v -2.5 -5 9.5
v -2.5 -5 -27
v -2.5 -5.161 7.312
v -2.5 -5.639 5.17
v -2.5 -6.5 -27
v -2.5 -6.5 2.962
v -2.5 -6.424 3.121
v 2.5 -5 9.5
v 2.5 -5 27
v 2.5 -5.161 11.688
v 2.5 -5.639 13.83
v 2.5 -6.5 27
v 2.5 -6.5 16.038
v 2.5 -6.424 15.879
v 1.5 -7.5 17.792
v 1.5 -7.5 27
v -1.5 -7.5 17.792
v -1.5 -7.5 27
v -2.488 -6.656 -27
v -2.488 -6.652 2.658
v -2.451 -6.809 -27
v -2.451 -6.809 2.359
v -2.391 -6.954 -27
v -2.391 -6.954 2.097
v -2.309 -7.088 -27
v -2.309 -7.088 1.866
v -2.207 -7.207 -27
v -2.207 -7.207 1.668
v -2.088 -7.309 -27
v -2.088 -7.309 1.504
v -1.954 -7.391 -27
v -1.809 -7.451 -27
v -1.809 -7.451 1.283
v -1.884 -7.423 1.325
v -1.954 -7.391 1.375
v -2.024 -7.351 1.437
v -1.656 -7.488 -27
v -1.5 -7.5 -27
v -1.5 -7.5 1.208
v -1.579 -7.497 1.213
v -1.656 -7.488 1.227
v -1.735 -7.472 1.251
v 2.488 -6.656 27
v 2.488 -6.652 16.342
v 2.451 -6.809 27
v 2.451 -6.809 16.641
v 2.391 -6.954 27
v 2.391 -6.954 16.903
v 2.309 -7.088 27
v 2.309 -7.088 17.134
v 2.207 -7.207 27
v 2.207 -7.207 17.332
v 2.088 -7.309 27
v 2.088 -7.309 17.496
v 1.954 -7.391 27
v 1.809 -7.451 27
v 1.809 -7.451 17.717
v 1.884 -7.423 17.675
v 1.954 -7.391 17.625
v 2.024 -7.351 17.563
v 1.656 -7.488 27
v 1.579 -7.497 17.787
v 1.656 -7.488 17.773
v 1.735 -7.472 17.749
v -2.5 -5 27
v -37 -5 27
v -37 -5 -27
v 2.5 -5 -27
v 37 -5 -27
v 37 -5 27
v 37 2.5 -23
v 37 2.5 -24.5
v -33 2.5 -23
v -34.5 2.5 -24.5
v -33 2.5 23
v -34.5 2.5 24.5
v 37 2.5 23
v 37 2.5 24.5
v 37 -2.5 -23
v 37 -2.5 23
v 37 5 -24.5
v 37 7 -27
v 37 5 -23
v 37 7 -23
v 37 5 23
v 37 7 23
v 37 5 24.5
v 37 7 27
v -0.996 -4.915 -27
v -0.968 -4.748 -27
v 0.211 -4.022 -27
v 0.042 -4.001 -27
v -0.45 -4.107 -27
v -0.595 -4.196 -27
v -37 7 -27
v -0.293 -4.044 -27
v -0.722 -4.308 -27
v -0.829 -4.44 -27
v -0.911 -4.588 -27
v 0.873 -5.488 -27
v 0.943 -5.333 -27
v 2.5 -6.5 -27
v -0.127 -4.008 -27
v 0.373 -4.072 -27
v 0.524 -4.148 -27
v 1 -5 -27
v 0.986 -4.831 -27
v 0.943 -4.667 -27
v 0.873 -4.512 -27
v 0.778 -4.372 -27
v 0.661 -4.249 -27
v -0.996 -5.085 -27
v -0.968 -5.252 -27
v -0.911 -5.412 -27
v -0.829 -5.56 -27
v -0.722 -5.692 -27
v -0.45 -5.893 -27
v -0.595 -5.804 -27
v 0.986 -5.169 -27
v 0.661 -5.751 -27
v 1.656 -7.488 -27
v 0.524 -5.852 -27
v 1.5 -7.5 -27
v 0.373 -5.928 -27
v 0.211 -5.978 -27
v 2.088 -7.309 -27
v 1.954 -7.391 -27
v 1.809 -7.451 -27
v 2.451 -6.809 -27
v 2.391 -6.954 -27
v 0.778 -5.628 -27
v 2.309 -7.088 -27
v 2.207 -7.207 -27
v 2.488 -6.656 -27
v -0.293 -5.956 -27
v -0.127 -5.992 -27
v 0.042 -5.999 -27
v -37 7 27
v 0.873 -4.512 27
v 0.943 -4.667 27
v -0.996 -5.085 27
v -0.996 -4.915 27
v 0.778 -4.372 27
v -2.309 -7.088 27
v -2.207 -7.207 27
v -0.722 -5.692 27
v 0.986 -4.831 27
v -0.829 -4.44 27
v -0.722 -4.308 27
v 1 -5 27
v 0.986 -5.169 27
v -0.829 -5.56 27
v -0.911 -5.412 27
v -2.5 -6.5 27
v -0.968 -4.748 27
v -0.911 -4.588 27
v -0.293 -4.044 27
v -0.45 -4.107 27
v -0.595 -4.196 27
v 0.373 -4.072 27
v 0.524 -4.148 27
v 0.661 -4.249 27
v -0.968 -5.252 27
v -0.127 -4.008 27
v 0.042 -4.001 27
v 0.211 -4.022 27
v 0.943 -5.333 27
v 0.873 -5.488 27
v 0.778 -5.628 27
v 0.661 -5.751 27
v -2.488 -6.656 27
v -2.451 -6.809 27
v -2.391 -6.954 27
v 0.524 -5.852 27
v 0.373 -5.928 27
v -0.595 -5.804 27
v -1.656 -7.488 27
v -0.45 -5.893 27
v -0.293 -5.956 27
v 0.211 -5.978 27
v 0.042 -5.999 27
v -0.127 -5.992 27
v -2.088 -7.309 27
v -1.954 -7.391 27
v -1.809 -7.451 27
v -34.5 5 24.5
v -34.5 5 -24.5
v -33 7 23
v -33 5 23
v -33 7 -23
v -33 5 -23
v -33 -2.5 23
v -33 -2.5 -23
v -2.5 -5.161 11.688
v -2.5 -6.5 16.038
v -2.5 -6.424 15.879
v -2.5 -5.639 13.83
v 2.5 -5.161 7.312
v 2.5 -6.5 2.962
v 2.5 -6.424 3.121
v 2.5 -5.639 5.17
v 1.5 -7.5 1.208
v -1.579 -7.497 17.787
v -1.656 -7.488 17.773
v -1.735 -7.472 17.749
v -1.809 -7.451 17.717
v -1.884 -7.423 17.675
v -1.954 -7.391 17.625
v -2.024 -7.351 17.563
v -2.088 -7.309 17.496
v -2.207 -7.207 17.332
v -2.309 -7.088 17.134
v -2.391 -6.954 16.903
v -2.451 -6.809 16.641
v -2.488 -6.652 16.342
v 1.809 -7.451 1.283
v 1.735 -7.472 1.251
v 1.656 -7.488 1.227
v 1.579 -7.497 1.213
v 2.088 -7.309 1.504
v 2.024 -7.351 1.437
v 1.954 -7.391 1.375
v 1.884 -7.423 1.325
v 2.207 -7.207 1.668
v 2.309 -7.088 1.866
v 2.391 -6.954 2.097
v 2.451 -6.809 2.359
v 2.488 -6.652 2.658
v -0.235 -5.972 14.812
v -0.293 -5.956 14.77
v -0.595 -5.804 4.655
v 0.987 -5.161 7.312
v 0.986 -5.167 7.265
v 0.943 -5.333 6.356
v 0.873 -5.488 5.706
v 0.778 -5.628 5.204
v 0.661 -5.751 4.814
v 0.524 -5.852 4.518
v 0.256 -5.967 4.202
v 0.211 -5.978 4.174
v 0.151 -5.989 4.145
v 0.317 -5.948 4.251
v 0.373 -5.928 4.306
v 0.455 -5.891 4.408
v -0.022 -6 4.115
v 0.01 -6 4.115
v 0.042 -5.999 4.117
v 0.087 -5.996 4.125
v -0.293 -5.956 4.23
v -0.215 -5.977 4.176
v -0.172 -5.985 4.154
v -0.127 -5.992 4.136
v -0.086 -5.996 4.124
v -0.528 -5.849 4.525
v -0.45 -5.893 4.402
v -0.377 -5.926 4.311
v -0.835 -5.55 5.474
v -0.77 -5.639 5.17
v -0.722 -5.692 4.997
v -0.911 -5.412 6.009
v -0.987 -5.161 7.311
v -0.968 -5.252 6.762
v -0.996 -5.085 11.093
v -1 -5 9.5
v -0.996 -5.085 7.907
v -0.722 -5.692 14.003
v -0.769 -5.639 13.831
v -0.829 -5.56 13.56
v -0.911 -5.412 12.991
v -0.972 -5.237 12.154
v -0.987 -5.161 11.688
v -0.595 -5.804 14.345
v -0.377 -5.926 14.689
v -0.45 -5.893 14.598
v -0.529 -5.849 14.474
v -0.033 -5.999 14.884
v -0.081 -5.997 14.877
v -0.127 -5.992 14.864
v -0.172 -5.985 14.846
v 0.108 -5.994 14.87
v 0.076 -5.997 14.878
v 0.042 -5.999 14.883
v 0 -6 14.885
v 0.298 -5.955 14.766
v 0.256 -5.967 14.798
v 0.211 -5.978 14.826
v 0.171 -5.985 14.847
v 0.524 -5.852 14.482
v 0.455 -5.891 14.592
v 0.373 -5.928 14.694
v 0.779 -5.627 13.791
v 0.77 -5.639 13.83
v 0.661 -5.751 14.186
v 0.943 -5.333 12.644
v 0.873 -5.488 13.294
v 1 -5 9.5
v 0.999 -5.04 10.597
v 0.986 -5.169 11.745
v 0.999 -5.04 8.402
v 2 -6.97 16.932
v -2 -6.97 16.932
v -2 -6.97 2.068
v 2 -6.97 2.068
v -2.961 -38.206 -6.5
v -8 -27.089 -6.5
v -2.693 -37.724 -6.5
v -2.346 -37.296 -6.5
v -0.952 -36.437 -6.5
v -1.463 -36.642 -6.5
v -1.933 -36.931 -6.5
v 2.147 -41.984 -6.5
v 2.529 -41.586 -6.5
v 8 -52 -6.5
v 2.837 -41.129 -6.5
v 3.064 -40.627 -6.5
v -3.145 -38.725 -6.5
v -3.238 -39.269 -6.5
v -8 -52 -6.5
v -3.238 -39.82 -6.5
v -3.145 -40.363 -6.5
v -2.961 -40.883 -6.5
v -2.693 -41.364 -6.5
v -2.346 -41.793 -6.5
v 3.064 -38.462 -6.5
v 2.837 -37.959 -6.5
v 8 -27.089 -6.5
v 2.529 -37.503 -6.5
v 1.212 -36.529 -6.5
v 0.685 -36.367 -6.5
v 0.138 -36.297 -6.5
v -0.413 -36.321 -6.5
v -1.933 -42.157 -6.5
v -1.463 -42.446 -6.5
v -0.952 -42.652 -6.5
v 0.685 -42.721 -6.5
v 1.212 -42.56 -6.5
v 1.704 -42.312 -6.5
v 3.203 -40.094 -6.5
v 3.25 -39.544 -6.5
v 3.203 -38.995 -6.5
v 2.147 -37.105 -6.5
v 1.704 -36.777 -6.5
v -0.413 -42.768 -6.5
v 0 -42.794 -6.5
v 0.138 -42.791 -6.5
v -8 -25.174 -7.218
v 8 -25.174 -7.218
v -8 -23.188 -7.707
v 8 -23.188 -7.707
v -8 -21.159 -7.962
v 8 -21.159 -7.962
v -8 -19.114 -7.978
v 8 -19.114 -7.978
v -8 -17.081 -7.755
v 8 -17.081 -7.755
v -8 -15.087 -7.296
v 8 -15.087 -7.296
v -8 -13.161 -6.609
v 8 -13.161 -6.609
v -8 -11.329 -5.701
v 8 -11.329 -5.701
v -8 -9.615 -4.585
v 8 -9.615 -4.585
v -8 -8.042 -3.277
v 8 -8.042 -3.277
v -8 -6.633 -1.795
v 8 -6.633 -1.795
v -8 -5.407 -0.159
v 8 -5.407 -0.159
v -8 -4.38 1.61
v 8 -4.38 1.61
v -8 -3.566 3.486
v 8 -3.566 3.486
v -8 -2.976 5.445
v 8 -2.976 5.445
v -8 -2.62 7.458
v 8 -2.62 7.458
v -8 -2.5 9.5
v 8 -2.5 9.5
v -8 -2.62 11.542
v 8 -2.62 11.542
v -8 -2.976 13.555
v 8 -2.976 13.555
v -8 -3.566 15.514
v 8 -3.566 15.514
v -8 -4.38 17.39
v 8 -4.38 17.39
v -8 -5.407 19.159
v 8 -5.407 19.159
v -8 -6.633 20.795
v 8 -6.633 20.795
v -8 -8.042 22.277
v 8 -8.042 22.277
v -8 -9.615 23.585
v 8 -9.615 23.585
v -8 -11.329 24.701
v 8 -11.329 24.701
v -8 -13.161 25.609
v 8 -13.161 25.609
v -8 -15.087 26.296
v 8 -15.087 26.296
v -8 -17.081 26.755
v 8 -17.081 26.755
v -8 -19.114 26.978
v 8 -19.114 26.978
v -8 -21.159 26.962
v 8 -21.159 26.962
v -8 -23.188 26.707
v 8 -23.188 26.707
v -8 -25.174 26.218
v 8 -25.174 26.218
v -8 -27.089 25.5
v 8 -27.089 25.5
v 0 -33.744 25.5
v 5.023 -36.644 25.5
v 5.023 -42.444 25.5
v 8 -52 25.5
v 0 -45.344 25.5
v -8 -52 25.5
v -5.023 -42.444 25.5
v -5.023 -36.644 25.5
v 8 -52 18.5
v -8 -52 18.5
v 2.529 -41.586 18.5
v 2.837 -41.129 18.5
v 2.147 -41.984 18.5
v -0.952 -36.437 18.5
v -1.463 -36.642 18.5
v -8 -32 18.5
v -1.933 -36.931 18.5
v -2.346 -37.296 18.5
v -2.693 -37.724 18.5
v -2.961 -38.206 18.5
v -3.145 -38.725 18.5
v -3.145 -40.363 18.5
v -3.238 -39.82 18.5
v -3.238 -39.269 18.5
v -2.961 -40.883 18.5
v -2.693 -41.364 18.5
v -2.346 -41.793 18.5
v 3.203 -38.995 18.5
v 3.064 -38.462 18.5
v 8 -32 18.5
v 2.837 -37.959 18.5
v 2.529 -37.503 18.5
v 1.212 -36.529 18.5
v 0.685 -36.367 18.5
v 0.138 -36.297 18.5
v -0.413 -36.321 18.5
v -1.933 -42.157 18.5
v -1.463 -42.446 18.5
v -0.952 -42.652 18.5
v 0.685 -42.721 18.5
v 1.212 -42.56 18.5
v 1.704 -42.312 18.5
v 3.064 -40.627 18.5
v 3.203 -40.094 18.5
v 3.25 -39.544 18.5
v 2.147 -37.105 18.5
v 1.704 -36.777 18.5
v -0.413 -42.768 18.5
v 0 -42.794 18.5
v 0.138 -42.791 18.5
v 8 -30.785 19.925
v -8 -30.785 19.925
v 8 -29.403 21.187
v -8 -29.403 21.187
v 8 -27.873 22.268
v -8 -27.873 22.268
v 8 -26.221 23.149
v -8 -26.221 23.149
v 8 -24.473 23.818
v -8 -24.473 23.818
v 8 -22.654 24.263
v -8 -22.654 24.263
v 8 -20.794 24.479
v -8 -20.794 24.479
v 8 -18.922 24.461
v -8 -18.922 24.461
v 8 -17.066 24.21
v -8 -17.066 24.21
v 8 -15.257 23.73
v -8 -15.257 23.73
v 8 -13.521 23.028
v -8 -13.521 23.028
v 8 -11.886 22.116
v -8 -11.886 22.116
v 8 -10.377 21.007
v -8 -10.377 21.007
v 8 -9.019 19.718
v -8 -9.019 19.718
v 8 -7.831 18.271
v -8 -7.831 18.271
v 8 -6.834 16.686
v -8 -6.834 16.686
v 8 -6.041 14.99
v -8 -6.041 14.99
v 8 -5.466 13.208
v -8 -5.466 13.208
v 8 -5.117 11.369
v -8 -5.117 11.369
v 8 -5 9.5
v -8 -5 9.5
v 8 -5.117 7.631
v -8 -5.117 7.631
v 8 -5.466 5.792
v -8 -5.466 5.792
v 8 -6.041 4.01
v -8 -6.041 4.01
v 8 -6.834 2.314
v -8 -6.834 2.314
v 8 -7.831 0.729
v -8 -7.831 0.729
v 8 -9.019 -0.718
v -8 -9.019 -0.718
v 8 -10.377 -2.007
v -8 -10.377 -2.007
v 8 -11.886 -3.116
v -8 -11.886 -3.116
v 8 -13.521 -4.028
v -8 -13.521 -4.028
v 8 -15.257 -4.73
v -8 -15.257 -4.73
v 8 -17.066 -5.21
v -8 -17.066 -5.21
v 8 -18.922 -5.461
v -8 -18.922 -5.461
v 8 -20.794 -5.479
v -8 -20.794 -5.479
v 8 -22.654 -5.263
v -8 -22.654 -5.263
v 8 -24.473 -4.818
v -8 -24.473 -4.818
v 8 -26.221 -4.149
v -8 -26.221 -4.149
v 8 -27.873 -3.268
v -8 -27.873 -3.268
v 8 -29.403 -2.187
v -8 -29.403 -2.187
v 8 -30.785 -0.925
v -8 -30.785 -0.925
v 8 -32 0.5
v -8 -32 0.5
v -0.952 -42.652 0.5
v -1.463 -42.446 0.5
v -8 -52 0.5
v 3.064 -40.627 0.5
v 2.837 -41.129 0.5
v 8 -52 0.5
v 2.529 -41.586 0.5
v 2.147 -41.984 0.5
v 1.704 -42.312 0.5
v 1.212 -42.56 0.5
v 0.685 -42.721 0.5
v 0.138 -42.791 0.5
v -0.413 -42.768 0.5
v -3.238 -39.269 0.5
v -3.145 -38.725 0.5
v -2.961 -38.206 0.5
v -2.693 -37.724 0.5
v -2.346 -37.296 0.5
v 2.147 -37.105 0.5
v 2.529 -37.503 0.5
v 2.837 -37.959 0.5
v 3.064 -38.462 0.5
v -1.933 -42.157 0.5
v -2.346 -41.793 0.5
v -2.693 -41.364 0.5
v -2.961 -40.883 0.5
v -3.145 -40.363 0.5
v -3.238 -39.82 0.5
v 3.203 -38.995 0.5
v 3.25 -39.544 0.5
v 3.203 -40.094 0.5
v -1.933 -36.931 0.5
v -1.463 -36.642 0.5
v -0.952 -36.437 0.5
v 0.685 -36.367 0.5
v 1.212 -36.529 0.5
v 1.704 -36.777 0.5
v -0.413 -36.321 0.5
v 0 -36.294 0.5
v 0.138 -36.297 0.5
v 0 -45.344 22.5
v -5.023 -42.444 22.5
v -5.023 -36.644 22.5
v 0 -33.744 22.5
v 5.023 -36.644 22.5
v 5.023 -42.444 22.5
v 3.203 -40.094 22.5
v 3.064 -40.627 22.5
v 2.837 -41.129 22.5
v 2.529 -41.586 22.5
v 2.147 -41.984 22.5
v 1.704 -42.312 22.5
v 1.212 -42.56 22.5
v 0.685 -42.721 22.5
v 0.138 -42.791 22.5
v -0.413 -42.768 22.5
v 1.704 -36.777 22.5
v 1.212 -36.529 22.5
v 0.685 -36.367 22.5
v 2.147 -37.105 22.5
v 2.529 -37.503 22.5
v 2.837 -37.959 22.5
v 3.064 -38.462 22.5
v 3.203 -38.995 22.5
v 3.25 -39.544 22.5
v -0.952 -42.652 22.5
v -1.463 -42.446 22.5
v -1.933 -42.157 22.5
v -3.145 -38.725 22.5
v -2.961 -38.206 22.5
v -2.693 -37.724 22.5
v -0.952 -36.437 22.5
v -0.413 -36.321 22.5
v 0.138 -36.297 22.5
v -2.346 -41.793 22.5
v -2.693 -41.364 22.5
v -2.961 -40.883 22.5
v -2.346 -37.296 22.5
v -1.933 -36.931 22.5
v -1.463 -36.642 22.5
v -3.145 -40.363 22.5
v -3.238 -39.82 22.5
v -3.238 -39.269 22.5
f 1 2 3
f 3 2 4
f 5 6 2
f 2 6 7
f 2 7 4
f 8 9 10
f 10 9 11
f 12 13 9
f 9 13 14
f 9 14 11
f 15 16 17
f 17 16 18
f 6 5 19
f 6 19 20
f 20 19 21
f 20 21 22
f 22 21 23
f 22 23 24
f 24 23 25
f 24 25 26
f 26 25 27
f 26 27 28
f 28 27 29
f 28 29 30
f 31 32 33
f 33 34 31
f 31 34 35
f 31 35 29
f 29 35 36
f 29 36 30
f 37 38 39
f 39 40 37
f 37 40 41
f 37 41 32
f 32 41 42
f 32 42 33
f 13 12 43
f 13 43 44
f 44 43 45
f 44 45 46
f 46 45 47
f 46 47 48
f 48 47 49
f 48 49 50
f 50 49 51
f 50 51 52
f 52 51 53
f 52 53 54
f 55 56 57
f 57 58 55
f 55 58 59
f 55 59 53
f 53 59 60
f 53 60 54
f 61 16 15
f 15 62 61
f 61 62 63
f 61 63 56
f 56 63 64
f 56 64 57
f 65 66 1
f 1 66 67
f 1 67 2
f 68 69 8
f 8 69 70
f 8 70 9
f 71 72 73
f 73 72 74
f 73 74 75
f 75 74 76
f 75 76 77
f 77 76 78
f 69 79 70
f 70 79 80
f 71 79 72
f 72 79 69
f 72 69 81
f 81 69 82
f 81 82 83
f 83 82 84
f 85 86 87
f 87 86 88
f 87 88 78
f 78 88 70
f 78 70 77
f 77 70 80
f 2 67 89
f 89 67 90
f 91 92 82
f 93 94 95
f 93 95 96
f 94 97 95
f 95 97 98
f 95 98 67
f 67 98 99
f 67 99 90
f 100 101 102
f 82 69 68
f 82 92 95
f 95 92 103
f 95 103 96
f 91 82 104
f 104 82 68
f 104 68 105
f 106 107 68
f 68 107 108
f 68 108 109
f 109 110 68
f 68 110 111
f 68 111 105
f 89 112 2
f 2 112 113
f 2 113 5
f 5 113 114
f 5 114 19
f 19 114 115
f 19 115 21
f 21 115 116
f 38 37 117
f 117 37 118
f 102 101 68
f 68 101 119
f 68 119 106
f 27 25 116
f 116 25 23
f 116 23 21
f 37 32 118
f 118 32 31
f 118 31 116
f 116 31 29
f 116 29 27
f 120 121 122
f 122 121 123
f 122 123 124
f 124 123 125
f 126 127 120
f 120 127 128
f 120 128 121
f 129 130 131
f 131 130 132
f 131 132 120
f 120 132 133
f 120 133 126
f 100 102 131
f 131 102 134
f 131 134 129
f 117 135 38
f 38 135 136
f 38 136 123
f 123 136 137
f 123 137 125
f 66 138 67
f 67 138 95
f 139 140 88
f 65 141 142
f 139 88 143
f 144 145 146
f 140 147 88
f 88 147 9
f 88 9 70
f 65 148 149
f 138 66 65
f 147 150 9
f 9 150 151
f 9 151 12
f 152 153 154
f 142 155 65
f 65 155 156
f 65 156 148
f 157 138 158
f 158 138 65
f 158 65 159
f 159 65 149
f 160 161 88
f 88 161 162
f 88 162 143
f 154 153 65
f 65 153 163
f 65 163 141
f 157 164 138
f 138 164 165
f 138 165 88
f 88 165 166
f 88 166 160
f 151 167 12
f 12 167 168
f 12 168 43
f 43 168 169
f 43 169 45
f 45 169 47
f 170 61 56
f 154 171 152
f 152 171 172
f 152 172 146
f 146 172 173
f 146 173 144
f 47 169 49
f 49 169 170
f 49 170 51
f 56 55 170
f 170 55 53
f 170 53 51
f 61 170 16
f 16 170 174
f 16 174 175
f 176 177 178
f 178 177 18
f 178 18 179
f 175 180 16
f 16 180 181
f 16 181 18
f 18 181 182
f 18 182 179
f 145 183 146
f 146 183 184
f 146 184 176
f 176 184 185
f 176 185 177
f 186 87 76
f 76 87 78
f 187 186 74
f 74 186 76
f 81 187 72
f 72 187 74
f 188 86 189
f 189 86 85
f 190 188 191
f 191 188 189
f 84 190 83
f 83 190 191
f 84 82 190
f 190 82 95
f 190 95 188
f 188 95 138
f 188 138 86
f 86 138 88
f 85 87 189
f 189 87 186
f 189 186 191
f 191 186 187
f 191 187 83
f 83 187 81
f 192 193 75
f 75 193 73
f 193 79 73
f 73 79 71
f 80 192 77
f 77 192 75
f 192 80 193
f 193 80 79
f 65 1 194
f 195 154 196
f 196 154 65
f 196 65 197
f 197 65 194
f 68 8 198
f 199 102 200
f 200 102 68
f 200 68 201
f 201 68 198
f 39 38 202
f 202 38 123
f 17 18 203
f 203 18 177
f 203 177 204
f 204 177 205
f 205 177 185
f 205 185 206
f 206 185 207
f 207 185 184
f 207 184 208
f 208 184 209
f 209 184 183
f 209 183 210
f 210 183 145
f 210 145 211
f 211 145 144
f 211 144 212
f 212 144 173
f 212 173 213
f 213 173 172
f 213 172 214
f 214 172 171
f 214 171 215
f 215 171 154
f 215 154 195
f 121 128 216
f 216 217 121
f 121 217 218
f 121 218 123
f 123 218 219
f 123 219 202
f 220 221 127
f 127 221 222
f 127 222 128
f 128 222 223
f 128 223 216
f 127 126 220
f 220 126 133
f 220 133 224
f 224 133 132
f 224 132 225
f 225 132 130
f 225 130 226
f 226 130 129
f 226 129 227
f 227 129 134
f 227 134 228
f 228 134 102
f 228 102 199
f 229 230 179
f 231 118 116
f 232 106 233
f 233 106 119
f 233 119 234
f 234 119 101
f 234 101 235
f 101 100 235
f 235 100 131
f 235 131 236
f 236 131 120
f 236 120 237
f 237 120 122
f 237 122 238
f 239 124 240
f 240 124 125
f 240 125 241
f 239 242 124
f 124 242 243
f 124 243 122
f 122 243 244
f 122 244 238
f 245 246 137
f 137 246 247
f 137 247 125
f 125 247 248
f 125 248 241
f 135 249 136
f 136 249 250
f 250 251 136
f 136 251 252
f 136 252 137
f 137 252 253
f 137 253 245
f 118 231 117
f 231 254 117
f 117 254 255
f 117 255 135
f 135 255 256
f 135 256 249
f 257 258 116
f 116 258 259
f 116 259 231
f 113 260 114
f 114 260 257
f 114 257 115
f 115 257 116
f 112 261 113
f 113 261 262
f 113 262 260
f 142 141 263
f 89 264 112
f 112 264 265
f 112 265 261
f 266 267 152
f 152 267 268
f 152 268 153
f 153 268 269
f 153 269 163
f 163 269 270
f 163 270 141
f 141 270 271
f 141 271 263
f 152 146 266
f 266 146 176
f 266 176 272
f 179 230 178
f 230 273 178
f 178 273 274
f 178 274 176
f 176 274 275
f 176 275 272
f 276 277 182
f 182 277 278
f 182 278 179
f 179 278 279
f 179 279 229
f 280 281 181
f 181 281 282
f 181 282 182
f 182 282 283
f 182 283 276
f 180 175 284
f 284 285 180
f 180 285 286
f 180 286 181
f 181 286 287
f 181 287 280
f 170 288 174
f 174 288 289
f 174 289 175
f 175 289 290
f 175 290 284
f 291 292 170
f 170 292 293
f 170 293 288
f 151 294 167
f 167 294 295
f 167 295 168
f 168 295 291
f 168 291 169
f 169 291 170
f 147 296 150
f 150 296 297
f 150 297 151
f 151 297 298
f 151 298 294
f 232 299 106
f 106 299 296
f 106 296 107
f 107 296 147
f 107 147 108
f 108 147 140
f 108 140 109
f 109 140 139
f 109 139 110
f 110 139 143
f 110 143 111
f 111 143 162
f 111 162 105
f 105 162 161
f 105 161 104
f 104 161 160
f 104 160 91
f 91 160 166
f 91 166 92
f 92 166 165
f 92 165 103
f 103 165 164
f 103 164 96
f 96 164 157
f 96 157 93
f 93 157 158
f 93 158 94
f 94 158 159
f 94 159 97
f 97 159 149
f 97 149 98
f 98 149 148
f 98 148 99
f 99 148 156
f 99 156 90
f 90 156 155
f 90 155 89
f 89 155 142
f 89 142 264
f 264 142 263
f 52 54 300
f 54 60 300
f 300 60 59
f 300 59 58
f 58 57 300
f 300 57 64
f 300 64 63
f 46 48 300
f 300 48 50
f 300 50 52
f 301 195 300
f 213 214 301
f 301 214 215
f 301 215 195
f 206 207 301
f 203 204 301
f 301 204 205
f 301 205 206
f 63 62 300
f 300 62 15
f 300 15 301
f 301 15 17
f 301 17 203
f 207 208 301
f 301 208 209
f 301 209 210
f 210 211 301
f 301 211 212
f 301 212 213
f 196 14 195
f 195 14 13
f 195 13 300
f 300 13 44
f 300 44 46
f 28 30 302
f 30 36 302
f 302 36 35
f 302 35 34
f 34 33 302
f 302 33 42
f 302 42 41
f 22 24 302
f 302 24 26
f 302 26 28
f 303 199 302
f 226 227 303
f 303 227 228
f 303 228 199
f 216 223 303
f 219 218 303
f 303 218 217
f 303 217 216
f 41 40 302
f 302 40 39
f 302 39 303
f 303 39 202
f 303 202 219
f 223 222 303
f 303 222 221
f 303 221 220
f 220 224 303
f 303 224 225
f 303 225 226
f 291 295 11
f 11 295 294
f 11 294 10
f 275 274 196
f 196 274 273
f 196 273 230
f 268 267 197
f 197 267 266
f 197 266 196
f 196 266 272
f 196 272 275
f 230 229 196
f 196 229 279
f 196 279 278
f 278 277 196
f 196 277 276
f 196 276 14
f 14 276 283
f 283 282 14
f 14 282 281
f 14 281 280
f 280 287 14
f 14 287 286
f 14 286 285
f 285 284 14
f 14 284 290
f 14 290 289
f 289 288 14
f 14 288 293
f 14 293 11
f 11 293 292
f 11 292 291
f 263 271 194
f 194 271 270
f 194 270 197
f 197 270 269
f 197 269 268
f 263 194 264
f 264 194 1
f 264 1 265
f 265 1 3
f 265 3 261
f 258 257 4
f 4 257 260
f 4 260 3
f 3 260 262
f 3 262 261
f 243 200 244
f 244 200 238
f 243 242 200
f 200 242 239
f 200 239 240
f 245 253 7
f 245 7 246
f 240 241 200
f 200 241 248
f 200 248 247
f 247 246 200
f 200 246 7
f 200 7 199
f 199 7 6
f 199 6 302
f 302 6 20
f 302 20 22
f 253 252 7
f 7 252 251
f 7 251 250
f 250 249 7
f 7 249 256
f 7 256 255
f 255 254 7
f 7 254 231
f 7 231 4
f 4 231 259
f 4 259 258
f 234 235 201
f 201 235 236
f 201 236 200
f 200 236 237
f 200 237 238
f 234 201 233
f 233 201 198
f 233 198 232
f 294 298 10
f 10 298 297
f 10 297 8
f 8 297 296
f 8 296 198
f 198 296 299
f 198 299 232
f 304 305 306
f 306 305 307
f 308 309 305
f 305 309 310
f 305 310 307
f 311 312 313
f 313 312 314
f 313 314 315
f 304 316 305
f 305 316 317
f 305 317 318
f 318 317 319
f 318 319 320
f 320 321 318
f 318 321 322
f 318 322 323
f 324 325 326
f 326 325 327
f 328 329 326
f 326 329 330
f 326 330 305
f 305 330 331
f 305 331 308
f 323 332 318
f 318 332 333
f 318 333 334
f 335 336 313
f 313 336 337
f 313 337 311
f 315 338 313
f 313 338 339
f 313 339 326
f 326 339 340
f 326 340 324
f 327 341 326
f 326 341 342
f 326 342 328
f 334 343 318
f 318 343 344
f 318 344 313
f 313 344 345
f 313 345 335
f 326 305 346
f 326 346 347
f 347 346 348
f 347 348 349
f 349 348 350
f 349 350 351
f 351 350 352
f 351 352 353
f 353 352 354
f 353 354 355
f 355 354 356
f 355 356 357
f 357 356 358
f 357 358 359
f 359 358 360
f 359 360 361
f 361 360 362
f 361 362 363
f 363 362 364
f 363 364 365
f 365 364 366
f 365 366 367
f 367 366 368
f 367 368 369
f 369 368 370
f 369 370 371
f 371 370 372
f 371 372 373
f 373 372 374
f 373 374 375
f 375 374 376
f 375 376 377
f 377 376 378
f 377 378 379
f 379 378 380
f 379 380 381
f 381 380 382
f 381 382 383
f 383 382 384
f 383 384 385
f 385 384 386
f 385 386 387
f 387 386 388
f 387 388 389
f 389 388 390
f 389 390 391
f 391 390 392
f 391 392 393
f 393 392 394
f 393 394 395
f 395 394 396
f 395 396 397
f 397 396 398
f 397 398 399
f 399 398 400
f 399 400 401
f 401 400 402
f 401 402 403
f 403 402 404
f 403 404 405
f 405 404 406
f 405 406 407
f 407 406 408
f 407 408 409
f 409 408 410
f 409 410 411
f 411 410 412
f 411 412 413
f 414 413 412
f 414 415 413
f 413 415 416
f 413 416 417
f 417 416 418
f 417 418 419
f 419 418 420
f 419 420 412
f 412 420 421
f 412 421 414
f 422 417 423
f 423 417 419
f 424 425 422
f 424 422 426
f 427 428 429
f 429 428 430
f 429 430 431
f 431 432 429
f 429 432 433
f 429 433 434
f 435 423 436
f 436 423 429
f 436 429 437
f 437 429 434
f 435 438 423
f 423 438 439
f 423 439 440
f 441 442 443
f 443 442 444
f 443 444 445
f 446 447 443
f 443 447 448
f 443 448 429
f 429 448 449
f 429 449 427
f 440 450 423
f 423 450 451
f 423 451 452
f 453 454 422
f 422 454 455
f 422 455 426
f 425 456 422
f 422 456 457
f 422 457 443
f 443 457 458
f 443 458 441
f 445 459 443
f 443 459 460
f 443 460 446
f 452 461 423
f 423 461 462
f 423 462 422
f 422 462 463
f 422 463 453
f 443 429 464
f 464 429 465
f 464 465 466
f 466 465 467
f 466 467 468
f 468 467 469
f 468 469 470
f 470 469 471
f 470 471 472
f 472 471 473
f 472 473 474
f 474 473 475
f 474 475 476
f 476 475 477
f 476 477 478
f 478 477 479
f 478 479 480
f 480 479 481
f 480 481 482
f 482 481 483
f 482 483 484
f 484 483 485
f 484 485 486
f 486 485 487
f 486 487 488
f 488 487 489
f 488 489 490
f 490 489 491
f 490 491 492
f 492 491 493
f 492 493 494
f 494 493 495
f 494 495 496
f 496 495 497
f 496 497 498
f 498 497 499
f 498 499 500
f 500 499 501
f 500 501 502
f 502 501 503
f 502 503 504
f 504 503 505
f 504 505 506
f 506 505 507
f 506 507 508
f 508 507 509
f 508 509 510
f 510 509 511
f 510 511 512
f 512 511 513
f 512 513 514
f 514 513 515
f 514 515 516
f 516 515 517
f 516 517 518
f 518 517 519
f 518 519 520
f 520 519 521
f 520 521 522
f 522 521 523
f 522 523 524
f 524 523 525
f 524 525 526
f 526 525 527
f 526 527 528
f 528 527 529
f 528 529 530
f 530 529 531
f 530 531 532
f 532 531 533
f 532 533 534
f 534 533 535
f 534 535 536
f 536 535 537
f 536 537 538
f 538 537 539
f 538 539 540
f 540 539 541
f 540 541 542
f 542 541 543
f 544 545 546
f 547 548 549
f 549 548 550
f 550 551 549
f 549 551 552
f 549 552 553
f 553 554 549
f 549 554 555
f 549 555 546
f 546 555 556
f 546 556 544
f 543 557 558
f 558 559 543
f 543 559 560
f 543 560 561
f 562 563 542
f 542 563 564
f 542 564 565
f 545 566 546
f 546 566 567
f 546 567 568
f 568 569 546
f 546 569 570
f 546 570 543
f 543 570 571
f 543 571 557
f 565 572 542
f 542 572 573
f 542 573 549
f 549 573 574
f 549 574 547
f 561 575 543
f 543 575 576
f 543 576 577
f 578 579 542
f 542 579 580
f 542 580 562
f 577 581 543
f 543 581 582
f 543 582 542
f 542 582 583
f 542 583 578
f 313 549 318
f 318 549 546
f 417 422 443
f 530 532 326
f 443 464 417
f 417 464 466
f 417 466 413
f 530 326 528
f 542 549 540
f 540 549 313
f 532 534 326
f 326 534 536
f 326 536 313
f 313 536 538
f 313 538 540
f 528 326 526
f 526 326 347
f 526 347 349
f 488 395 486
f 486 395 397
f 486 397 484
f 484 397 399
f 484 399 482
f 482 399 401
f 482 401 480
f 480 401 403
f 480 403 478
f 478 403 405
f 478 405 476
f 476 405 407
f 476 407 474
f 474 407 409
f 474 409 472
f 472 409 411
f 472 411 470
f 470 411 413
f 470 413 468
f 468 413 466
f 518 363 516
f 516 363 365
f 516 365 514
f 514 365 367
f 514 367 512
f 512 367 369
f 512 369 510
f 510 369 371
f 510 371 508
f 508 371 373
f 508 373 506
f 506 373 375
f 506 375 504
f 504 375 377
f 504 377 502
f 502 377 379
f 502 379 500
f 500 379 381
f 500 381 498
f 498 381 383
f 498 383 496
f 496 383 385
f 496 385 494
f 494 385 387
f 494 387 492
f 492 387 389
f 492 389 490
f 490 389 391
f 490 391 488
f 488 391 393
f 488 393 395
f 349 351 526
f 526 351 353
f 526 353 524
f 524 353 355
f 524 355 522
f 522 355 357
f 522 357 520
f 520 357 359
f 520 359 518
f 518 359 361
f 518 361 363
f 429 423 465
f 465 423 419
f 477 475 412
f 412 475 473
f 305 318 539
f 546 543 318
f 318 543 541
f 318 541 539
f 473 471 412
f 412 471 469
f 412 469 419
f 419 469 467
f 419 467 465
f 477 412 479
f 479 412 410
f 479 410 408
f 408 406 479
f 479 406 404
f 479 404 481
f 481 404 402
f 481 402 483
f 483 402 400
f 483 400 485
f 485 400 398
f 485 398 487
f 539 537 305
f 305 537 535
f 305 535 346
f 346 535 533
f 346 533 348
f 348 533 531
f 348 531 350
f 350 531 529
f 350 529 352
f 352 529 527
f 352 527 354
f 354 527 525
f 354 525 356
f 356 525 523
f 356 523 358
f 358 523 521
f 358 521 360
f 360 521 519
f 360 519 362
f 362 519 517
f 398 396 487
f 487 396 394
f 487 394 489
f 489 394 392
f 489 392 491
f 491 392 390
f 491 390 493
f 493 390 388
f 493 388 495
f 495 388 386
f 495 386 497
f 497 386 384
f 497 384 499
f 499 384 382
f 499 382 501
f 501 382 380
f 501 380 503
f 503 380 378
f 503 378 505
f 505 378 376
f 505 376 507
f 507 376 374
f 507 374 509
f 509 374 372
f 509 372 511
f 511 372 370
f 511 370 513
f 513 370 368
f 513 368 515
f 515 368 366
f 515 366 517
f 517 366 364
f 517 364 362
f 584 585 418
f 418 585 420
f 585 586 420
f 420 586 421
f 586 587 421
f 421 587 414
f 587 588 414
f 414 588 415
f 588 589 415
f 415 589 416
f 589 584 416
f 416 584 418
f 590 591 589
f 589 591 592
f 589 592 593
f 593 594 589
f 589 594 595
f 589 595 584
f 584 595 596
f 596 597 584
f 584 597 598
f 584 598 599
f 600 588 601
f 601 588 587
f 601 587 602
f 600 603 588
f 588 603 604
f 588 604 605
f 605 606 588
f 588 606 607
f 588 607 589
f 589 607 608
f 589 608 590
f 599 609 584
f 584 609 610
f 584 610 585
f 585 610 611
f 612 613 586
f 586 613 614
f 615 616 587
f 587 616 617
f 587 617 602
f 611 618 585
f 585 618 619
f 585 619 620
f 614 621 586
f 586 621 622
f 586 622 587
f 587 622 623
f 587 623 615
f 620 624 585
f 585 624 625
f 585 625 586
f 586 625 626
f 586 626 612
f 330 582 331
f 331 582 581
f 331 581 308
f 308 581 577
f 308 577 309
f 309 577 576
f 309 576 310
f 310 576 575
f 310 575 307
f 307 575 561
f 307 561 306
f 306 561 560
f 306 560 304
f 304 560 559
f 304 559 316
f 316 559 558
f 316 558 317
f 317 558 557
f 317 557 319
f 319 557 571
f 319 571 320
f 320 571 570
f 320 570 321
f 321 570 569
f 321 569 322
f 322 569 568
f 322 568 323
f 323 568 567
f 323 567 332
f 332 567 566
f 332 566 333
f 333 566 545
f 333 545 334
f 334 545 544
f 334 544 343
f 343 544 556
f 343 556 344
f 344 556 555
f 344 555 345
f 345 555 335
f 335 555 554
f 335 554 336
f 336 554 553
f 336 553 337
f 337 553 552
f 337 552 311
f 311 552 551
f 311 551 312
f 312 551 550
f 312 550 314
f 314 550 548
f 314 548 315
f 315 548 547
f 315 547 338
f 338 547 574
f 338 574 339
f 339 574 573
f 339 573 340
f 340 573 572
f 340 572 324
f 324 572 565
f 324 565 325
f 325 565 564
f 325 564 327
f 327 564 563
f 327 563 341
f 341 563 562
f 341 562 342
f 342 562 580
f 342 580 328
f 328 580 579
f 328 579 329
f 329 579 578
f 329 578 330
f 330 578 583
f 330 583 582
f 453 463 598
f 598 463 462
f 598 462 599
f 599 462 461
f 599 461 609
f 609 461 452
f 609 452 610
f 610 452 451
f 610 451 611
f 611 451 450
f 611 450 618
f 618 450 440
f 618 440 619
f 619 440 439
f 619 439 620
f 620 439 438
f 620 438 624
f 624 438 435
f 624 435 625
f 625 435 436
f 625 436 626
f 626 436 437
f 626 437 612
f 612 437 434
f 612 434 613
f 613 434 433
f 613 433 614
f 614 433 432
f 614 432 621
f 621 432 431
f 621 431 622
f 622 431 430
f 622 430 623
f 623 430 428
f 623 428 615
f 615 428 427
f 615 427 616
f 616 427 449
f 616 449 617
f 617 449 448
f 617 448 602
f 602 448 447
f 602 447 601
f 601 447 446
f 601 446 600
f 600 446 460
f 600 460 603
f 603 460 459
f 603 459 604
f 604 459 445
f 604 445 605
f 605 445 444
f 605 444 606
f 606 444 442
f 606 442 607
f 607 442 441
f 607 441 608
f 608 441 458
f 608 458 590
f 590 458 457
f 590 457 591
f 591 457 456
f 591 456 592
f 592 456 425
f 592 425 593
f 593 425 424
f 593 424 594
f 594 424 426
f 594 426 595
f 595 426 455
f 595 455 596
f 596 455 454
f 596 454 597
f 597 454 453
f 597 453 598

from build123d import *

# Parameters (mm, degrees)
CROQUIS1_W              = 74
CROQUIS1_H              = 54
SALIENTE_EXTRUIR1_DEPTH = 2.5
SALIENTE_EXTRUIR2_DEPTH = 2.5
SALIENTE_EXTRUIR3_DEPTH = 2
CROQUIS4_W              = 74
CROQUIS4_H              = 54
SALIENTE_EXTRUIR4_DEPTH = 5
CROQUIS5_W              = 70
CROQUIS5_H              = 46
CORTAR_EXTRUIR1_DEPTH   = 5
CROQUIS6_W              = 5
CROQUIS6_H              = 54
SALIENTE_EXTRUIR5_DEPTH = 2.5
REDONDEO1_R             = 1
CROQUIS7_R              = 1
CORTAR_EXTRUIR2_DEPTH   = 100
SALIENTE_EXTRUIR9_DEPTH = 8
CROQUIS10_R             = 15
CORTAR_EXTRUIR3_DEPTH   = 16
CORTAR_EXTRUIR4_DEPTH   = 3
CROQUIS12_R             = 3.25
CORTAR_EXTRUIR5_DEPTH   = 100


with BuildPart() as part:
    # Croquis1 → Saliente-Extruir1 (new body)
    with BuildSketch(Plane(origin=(0, 0, 0), x_dir=(1, 0, 0), z_dir=(0, 1, 0))):
        Rectangle(CROQUIS1_W, CROQUIS1_H)
    extrude(amount=SALIENTE_EXTRUIR1_DEPTH)

    # Croquis2 → Saliente-Extruir2 (add)
    with BuildSketch(Plane(origin=(0, 2.5, 0), x_dir=(1, 0, 0), z_dir=(0, 1, 0))):
        Polygon((-34.5, 24.5), (34.5, 24.5), (37, 24.5), (37, 27), (-37, 27), (-37, -27), (37, -27), (37, -24.5), (34.5, -24.5), (-34.5, -24.5), align=None)
    extrude(amount=SALIENTE_EXTRUIR2_DEPTH)

    # Croquis3 → Saliente-Extruir3 (add)
    with BuildSketch(Plane(origin=(0, 5, 0), x_dir=(1, 0, 0), z_dir=(0, 1, 0))):
        Polygon((37, 23), (37, 24.5), (-34.5, 24.5), (-34.5, -24.5), (37, -24.5), (37, -23), (33, -23), (-33, -23), (-33, 23), (33, 23), align=None)
        Polygon((37, -27), (37, -24.5), (-34.5, -24.5), (-34.5, 24.5), (37, 24.5), (37, 27), (-37, 27), (-37, -27), align=None)
    extrude(amount=SALIENTE_EXTRUIR3_DEPTH)

    # Croquis4 → Saliente-Extruir4 (add)
    with BuildSketch(Plane.XZ):
        Rectangle(CROQUIS4_W, CROQUIS4_H)
    extrude(amount=SALIENTE_EXTRUIR4_DEPTH)

    # Croquis5 → Cortar-Extruir1 (cut)
    with BuildSketch(Plane(origin=(0, 2.5, 0), x_dir=(1, 0, 0), z_dir=(0, 1, 0))):
        with Locations((2, 0)):
            Rectangle(CROQUIS5_W, CROQUIS5_H)
    extrude(amount=-CORTAR_EXTRUIR1_DEPTH, mode=Mode.SUBTRACT)

    # Croquis6 → Saliente-Extruir5 (add, symmetric)
    with BuildSketch(Plane.XZ.offset(5)):
        Rectangle(CROQUIS6_W, CROQUIS6_H)
    extrude(amount=SALIENTE_EXTRUIR5_DEPTH, both=True)

    # Redondeo1
    redondeo1_edges = [part.edges().sort_by_distance(p)[0] for p in [
        (-2.5, -7.5, 0),
        (2.5, -7.5, 0),
    ]]
    fillet(redondeo1_edges, radius=REDONDEO1_R)

    # Croquis7 → Cortar-Extruir2 (cut)
    with BuildSketch(Plane.XY.offset(27)):
        with Locations((0, -5)):
            Circle(CROQUIS7_R)
    extrude(amount=-CORTAR_EXTRUIR2_DEPTH, mode=Mode.SUBTRACT)

    # Croquis10 → Cortar-Extruir3 (cut)
    with BuildSketch(Plane(origin=(8, 0, 0), x_dir=(0, 0, -1), z_dir=(1, 0, 0))):
        with Locations((-9.5, -20)):
            Circle(CROQUIS10_R)
    extrude(amount=-CORTAR_EXTRUIR3_DEPTH, mode=Mode.SUBTRACT)


with BuildPart() as body_2:
    # Croquis9 → Saliente-Extruir9 (new, symmetric)
    with BuildSketch(Plane(origin=(0, 0, 0), x_dir=(0, 0, -1), z_dir=(1, 0, 0))):
        with BuildLine():
            Line((-18.5, -32), (-18.5, -52))
            Line((-18.5, -52), (-25.5, -52))
            Line((-25.5, -52), (-25.5, -27.088723439))
            ThreePointArc((-25.5, -27.088723439), (-9.5, -2.5), (6.5, -27.088723439))
            Line((6.5, -27.088723439), (6.5, -52))
            Line((6.5, -52), (-0.5, -52))
            Line((-0.5, -52), (-0.5, -32))
            ThreePointArc((-0.5, -32), (-9.5, -5), (-18.5, -32))
        make_face()
    extrude(amount=SALIENTE_EXTRUIR9_DEPTH, both=True)

    # Croquis11 → Cortar-Extruir4 (cut)
    with BuildSketch(Plane.XY.offset(25.5)):
        Polygon((0, -45.34436172), (5.022947342, -42.44436172), (5.022947342, -36.64436172), (0, -33.74436172), (-5.022947342, -36.64436172), (-5.022947342, -42.44436172), align=None)
    extrude(amount=-CORTAR_EXTRUIR4_DEPTH, mode=Mode.SUBTRACT)

    # Croquis12 → Cortar-Extruir5 (cut)
    with BuildSketch(Plane.XY.offset(22.5)):
        with Locations(Location((0, -39.54436172, 0), (0, 0, 90))):
            Circle(CROQUIS12_R)
    extrude(amount=-CORTAR_EXTRUIR5_DEPTH, mode=Mode.SUBTRACT)


solid = Compound([part.part, body_2.part])
